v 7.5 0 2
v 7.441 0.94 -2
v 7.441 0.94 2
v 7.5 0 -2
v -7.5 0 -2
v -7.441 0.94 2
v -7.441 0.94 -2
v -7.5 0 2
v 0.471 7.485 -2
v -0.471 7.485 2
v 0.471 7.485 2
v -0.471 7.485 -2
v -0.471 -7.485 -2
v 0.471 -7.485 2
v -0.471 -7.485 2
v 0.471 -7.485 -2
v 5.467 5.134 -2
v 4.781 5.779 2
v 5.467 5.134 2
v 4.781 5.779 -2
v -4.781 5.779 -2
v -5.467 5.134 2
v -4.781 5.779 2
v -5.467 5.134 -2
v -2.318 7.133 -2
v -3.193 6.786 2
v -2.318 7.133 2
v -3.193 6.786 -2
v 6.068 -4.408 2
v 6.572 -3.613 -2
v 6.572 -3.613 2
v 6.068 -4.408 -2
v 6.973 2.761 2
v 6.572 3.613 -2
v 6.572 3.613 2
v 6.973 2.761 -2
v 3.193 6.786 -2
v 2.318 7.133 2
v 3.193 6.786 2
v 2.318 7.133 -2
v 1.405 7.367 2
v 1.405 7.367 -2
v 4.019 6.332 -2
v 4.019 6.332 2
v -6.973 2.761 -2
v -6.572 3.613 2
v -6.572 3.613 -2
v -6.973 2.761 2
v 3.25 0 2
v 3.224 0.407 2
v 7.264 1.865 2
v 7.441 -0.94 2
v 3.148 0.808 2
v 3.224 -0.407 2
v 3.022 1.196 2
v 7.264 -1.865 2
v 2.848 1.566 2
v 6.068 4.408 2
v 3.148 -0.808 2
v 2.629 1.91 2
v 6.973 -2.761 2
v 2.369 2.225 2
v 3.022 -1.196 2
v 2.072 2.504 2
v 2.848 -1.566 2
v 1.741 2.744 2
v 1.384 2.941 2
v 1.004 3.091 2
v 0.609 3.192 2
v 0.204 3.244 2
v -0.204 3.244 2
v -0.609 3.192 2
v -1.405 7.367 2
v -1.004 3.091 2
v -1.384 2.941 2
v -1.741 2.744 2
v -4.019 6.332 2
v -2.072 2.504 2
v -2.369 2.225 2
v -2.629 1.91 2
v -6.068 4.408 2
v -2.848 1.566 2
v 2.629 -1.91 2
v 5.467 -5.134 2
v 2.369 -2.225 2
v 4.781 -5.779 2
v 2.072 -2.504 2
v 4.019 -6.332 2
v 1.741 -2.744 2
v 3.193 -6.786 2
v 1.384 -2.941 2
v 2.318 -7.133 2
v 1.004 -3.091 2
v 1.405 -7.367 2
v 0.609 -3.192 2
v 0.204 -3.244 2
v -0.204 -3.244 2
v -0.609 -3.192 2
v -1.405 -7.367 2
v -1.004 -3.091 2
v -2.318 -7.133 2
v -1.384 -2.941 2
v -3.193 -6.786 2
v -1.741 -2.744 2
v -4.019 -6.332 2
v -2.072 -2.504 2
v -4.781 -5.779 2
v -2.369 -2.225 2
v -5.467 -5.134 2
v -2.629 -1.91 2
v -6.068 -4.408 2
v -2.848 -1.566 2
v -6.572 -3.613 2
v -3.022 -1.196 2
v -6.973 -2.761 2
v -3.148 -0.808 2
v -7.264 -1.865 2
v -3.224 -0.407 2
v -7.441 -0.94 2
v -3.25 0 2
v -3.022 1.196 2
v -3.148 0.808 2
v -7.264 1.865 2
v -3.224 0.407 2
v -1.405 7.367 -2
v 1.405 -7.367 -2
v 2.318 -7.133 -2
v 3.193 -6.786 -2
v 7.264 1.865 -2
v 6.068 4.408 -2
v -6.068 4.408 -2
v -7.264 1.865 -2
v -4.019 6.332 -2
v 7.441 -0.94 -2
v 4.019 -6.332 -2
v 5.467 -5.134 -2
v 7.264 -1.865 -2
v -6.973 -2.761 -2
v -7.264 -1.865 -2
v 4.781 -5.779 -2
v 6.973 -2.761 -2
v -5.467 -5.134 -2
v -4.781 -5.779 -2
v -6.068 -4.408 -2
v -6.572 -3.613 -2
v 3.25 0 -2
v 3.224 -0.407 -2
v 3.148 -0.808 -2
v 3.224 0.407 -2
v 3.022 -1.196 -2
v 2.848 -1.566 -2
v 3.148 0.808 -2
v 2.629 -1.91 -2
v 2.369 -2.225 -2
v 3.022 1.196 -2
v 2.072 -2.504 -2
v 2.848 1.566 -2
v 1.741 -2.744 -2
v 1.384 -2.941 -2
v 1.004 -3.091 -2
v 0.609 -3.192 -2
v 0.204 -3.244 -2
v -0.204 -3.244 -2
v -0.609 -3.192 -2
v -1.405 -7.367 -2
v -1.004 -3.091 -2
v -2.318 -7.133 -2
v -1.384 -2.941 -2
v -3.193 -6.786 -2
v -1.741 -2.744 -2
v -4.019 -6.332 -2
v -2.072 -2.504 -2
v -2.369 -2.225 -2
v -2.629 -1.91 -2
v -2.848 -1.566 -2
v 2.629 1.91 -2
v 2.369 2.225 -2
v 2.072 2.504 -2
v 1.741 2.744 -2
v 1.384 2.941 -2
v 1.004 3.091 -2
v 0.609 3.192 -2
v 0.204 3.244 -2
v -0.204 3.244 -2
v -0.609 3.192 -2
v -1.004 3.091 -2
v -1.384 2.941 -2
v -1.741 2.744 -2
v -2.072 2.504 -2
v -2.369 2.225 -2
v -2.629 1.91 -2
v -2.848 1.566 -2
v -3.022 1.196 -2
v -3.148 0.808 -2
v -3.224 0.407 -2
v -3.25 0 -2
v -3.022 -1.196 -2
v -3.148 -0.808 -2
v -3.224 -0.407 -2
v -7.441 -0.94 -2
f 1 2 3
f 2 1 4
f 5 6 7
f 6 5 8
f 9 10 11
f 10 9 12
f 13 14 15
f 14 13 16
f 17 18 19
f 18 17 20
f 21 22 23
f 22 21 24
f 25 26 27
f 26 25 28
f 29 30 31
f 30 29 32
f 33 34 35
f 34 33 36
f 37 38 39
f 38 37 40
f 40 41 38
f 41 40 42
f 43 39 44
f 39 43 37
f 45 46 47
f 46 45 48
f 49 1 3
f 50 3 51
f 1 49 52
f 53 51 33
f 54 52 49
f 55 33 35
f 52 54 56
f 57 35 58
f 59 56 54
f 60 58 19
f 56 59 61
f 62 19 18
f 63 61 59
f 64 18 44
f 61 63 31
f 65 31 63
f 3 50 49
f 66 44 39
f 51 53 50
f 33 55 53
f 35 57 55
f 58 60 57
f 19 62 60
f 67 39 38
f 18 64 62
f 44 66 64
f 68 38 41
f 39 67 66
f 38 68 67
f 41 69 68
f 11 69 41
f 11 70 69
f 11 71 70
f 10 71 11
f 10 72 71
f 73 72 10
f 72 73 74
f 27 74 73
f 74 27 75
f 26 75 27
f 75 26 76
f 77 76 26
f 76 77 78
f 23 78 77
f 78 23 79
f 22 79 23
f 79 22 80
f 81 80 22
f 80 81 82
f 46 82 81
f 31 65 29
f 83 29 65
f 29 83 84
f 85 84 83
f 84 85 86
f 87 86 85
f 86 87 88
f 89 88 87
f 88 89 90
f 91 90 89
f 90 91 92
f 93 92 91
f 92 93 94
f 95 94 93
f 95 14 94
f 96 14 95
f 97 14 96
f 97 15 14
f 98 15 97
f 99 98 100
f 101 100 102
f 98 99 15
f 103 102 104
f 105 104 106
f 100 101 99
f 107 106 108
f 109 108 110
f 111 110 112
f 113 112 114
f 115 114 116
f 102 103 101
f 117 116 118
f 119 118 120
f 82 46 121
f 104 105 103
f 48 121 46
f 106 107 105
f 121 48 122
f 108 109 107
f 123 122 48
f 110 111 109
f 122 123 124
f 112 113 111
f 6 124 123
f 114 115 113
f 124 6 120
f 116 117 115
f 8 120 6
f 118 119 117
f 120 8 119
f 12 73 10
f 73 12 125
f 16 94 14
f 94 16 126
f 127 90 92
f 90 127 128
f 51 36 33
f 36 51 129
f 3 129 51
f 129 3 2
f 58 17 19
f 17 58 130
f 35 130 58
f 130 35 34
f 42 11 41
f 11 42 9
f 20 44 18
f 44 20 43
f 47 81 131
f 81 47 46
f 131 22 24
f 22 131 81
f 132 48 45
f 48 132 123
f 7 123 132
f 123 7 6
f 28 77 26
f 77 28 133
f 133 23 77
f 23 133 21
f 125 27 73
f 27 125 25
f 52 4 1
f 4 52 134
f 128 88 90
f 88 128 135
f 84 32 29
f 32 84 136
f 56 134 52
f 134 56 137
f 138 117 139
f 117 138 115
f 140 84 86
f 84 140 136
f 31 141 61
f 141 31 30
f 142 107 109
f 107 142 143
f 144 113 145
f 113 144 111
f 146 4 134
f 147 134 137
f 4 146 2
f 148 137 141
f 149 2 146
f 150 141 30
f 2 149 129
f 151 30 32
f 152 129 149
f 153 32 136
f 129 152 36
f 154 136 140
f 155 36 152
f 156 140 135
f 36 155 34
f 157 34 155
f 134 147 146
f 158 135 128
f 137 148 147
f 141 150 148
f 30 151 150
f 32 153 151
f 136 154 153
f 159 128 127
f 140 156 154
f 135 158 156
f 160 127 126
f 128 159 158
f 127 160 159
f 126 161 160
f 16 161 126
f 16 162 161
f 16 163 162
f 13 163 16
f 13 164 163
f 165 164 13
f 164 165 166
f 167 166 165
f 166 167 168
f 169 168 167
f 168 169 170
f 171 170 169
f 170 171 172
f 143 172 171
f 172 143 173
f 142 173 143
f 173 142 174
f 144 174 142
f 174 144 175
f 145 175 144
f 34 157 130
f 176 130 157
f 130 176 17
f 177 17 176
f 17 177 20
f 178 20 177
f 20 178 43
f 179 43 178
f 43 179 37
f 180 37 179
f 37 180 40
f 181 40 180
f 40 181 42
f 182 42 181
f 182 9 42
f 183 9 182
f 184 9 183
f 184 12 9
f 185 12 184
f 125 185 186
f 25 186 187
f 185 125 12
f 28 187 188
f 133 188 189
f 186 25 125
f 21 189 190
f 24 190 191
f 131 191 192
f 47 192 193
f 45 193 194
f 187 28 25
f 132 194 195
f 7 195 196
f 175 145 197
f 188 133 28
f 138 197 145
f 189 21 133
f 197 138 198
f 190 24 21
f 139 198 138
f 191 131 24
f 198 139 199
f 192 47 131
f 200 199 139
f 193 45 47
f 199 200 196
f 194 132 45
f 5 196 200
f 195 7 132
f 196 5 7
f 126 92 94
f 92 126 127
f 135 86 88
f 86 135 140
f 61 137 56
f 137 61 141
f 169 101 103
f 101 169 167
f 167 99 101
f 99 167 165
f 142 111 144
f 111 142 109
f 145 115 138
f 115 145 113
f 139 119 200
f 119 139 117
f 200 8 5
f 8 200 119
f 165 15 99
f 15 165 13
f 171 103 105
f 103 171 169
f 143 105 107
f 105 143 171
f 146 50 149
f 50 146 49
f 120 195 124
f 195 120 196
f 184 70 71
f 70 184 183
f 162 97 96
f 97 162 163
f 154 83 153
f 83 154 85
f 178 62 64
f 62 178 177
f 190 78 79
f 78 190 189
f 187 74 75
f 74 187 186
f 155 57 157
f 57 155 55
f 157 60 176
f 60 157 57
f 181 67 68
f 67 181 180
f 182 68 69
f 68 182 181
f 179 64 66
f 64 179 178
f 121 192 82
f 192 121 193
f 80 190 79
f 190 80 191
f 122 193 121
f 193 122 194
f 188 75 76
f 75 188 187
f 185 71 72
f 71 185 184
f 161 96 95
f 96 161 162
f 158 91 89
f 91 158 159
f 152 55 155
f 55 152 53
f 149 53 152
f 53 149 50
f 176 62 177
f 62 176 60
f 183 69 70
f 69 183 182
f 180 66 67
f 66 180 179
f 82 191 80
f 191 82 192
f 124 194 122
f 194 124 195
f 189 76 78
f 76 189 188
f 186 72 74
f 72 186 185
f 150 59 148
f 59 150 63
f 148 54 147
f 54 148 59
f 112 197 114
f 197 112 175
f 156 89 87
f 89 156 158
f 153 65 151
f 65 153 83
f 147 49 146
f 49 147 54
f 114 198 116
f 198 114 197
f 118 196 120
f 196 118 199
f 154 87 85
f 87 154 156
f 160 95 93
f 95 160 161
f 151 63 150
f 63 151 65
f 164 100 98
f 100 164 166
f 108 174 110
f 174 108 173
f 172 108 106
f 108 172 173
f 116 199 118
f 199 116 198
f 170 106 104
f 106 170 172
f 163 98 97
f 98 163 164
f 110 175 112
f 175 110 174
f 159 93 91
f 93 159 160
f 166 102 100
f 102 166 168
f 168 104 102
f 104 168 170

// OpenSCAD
$fn = 50;


difference() {
	union() {
		translate(v = [0, 0, -2.0000000000]) {
			cylinder(h = 4, r = 7.5000000000);
		}
	}
	union() {
		translate(v = [0, 0, -100.0000000000]) {
			cylinder(h = 200, r = 3.2500000000);
		}
	}
}
